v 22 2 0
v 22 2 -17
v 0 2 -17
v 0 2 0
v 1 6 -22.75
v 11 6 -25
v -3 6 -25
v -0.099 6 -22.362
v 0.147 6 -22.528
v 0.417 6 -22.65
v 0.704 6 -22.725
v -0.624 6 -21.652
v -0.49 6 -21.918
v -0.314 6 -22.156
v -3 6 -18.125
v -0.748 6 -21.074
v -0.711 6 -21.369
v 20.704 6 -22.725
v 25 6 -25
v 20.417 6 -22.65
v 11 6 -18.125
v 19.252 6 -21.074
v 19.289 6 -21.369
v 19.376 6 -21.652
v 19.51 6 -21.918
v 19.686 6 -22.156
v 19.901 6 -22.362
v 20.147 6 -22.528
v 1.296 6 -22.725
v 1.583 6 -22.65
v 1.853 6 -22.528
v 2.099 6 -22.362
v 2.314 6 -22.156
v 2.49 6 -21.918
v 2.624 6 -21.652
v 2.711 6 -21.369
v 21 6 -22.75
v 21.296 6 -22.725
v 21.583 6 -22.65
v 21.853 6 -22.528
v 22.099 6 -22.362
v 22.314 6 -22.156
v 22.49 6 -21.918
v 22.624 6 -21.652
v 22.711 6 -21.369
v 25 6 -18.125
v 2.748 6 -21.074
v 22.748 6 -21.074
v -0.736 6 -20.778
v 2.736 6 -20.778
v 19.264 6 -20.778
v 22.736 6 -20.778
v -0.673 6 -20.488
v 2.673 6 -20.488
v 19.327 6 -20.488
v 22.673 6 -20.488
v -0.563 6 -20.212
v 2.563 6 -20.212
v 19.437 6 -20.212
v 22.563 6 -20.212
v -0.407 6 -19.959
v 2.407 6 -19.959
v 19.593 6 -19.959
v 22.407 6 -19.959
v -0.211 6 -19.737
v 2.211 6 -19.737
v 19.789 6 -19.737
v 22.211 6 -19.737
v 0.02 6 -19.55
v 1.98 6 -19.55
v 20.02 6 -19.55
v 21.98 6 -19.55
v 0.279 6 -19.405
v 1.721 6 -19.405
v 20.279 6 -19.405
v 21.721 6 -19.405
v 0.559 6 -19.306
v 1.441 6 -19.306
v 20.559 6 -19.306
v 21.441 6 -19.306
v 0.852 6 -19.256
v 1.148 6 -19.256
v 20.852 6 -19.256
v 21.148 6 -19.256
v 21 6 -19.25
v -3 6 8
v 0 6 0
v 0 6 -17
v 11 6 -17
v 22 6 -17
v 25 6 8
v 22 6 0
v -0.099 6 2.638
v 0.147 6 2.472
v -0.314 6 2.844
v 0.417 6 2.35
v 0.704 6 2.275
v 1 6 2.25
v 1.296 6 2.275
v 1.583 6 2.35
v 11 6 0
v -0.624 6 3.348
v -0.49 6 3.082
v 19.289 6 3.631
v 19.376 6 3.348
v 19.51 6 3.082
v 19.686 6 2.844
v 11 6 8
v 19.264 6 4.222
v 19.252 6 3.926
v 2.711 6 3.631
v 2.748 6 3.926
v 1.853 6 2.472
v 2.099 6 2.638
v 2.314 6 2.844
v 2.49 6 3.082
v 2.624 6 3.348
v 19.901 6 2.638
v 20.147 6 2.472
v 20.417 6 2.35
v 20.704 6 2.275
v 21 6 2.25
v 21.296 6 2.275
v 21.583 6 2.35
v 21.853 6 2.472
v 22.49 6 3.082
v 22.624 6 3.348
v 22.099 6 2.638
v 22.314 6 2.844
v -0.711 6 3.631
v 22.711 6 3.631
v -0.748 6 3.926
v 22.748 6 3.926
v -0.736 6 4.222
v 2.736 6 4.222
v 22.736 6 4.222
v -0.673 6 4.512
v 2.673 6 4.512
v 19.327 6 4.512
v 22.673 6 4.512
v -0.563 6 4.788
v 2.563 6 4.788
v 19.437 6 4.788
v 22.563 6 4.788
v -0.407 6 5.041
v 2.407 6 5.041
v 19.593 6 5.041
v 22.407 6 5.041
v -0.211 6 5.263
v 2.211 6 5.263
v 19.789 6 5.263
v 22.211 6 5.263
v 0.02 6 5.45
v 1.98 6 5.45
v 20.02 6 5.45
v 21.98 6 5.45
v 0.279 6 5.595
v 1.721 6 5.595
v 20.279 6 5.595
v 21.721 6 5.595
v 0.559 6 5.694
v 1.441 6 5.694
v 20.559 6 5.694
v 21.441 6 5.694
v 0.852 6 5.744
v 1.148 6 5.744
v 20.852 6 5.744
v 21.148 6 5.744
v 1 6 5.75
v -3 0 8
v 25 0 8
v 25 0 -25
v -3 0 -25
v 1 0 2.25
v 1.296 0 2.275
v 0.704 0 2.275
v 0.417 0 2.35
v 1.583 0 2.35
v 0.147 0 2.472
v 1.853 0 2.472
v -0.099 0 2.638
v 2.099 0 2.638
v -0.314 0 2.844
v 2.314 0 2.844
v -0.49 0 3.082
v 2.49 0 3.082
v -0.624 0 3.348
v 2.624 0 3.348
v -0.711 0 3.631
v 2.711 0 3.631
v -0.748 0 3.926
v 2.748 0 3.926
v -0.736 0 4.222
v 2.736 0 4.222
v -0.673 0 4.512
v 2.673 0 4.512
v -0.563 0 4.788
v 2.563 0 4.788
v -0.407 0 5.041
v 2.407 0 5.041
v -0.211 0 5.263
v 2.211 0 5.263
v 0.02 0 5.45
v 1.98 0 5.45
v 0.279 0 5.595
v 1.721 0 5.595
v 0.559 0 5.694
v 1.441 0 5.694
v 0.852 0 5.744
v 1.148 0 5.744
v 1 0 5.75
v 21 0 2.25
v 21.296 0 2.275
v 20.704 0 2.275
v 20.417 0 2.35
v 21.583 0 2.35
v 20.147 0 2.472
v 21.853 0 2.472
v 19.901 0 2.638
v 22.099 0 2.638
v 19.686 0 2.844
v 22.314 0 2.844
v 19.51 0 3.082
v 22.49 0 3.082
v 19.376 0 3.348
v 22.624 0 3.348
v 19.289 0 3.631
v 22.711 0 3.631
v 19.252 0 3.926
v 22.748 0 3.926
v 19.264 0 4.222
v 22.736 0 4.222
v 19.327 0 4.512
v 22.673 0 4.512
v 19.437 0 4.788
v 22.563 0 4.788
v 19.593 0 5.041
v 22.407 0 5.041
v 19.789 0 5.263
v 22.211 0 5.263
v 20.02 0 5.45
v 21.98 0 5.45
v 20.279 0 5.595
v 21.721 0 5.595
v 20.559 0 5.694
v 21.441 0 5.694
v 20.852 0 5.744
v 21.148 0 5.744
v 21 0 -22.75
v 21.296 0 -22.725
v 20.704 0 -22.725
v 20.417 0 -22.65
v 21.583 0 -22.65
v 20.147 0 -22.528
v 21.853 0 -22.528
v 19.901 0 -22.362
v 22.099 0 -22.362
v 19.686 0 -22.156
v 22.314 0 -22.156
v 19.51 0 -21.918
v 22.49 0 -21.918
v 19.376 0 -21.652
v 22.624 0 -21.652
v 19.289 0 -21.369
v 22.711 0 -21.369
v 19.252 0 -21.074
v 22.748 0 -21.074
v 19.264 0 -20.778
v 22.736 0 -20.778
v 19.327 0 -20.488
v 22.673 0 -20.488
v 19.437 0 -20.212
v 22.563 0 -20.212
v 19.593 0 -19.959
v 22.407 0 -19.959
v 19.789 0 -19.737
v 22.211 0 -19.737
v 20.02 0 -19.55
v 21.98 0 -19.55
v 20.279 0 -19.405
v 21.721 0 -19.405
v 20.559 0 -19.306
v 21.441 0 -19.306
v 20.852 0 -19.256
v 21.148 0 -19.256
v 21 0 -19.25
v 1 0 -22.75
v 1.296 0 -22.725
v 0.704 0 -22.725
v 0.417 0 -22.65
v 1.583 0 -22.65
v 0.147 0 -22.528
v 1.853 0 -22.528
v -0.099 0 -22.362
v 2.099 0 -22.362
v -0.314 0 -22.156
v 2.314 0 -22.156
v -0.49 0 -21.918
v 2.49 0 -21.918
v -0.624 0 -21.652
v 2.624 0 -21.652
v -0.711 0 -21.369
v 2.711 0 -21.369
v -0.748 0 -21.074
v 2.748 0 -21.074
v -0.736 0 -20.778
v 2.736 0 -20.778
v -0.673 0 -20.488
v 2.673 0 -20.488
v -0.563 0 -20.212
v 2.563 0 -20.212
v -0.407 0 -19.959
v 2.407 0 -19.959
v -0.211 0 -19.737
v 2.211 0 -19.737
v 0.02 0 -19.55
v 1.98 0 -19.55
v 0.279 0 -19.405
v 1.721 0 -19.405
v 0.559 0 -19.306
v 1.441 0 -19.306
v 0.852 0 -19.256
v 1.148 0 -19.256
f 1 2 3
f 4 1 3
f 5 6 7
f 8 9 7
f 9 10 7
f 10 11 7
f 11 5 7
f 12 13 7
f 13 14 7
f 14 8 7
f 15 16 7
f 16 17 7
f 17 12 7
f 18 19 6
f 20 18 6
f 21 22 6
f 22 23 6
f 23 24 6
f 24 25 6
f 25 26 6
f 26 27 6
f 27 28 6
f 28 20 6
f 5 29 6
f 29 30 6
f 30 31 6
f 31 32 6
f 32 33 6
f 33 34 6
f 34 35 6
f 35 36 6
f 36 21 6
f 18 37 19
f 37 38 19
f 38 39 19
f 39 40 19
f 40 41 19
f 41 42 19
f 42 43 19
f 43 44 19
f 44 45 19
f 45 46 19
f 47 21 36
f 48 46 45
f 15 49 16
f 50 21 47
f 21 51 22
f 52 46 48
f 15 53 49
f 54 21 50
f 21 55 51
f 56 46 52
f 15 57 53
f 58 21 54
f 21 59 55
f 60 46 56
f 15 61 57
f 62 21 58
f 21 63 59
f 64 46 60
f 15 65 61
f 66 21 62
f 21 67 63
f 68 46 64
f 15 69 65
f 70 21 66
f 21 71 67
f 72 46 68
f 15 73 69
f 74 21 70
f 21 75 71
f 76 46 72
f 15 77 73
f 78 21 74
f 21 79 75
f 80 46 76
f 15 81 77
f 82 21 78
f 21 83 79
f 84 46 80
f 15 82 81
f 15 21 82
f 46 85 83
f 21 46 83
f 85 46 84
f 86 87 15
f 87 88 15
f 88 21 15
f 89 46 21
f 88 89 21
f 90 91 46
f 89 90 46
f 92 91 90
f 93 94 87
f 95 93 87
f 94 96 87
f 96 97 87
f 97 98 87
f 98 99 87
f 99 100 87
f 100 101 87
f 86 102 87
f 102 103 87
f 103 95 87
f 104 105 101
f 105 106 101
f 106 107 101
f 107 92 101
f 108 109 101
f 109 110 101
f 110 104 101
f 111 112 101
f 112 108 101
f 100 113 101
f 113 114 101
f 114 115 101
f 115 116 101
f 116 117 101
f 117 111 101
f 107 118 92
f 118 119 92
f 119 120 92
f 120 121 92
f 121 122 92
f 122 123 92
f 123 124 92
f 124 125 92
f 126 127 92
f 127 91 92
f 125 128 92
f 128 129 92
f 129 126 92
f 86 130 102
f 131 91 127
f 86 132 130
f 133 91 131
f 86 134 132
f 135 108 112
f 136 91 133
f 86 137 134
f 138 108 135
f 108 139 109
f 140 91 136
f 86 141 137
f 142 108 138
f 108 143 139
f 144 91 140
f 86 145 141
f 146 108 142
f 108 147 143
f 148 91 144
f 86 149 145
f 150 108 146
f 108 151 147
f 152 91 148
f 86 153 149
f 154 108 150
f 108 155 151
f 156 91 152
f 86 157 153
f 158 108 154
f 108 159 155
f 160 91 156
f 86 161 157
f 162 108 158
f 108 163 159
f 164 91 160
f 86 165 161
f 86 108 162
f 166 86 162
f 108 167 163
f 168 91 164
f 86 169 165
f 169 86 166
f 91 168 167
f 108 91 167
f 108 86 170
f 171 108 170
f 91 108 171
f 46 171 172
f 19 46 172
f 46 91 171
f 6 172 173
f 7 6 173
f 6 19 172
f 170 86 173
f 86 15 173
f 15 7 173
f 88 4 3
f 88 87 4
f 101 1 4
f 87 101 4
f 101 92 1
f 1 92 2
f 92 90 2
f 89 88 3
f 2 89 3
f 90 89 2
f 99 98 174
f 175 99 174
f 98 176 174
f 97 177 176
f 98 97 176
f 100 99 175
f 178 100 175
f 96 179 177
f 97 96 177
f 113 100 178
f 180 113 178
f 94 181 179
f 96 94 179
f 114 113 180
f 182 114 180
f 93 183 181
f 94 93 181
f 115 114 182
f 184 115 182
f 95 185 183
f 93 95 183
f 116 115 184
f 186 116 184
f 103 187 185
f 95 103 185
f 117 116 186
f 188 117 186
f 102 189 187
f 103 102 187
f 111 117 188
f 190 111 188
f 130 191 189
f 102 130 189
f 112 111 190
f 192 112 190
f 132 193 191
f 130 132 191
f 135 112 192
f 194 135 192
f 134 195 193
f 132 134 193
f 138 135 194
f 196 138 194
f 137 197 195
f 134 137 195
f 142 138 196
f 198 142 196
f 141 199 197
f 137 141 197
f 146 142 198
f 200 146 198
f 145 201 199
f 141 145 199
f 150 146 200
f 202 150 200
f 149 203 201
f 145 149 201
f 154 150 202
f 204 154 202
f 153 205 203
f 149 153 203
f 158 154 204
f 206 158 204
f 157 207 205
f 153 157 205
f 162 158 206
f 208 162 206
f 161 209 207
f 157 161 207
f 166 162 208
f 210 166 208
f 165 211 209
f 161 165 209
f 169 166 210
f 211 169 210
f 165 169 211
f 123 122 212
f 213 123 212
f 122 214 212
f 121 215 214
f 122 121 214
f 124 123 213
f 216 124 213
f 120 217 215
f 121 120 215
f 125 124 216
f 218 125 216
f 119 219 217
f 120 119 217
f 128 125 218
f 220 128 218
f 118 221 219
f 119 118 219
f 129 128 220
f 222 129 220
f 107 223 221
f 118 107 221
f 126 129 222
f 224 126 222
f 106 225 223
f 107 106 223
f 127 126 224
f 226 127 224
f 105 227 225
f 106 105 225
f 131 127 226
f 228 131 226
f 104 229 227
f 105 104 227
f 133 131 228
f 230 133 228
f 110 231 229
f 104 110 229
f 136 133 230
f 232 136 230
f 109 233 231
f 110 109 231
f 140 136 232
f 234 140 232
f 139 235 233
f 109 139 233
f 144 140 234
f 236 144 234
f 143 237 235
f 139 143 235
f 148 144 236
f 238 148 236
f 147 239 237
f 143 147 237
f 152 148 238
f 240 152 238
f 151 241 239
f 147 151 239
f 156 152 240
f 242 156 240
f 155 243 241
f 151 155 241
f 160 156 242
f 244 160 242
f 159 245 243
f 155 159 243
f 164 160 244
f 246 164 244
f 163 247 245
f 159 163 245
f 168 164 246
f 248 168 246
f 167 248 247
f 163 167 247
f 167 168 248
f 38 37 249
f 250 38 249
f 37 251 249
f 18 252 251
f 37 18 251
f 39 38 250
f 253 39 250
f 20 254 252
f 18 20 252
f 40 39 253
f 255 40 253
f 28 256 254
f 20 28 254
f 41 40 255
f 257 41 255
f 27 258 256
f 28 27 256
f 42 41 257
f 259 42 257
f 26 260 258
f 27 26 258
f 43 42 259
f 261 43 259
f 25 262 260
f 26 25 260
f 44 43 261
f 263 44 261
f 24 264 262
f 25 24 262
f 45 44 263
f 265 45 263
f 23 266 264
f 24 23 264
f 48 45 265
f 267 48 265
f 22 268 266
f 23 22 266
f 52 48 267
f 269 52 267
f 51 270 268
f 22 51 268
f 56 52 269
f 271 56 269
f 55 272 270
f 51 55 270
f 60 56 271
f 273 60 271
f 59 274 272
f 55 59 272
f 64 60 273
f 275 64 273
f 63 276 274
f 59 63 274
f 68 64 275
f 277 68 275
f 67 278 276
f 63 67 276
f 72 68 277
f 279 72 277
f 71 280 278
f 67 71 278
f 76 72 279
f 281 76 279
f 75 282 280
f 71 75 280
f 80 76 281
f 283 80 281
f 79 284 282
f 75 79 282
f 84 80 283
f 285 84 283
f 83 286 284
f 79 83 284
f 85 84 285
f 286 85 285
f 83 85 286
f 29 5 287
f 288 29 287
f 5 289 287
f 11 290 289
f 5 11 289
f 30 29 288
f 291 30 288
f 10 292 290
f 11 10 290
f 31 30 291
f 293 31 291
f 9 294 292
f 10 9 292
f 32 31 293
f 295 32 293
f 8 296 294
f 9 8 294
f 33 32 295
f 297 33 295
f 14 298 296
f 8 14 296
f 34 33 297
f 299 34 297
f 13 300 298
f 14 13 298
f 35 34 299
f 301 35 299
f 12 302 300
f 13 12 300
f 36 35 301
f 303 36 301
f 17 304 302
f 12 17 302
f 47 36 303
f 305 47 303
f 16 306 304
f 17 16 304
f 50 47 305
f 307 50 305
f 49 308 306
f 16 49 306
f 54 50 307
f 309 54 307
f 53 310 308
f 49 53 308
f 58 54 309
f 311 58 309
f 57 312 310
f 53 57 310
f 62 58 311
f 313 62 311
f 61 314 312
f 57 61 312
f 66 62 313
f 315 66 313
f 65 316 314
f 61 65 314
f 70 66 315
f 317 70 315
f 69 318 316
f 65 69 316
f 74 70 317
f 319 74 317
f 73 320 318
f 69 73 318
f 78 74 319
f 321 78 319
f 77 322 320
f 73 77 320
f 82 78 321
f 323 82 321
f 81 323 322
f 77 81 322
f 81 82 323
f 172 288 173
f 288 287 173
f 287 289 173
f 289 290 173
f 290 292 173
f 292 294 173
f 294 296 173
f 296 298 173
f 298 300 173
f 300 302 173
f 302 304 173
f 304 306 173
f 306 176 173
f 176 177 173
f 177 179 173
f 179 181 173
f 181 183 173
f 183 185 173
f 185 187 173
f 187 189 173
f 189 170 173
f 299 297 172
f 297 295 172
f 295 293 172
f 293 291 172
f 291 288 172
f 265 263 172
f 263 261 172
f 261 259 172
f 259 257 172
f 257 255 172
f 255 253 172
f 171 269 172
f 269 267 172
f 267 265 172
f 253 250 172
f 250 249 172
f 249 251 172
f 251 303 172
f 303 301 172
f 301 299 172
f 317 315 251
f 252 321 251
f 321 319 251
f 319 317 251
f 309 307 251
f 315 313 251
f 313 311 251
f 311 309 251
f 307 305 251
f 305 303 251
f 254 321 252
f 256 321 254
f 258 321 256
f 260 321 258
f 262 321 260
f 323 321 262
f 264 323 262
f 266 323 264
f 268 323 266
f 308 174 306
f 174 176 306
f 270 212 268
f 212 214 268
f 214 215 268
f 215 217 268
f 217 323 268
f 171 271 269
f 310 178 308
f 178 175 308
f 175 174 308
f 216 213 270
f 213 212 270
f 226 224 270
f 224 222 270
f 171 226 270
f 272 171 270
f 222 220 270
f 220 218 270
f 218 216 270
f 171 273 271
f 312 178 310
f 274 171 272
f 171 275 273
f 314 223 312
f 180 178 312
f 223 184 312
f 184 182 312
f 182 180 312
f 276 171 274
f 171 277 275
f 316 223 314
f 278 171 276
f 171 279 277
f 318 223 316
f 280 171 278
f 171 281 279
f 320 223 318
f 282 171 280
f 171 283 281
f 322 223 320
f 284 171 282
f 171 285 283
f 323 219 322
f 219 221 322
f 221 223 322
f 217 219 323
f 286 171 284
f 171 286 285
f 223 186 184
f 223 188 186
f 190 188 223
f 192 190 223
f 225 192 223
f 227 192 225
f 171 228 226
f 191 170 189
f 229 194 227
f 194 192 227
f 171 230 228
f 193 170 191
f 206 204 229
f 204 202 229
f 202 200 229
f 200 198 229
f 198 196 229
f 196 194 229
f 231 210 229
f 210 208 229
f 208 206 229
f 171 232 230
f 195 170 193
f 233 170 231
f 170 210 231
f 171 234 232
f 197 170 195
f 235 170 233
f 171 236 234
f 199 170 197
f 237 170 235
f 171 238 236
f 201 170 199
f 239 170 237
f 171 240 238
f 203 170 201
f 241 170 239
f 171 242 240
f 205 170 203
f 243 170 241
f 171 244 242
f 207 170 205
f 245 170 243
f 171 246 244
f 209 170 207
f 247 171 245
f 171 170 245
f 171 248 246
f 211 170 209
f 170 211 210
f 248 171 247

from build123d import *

# Parameters (mm, degrees)
SKETCH1_W           = 22
SKETCH1_H           = 17
BOSS_EXTRUDE1_DEPTH = 2
SKETCH1_3_W         = 28
SKETCH1_3_H         = 33
SKETCH1_3_R         = 1.75
SKETCH1_3_W_2       = 22
SKETCH1_3_H_2       = 17
BOSS_EXTRUDE2_DEPTH = 6


with BuildPart() as part:
    # Sketch1 → Boss-Extrude1 (new body)
    with BuildSketch(Plane(origin=(0, 0, 0), x_dir=(1, 0, 0), z_dir=(0, 1, 0))):
        with Locations((11, 8.5)):
            Rectangle(SKETCH1_W, SKETCH1_H)
    extrude(amount=BOSS_EXTRUDE1_DEPTH)

    # Sketch1<3> → Boss-Extrude2 (add)
    with BuildSketch(Plane(origin=(0, 0, 0), x_dir=(1, 0, 0), z_dir=(0, 1, 0))):
        with Locations((11, 8.5)):
            Rectangle(SKETCH1_3_W, SKETCH1_3_H)
        with Locations((21, -4)):
            Circle(SKETCH1_3_R, mode=Mode.SUBTRACT)
        with Locations((1, -4)):
            Circle(SKETCH1_3_R, mode=Mode.SUBTRACT)
        with Locations((21, 21)):
            Circle(SKETCH1_3_R, mode=Mode.SUBTRACT)
        with Locations((1, 21)):
            Circle(SKETCH1_3_R, mode=Mode.SUBTRACT)
        with Locations((11, 8.5)):
            Rectangle(SKETCH1_3_W_2, SKETCH1_3_H_2, mode=Mode.SUBTRACT)
    extrude(amount=BOSS_EXTRUDE2_DEPTH)


solid = part.part
